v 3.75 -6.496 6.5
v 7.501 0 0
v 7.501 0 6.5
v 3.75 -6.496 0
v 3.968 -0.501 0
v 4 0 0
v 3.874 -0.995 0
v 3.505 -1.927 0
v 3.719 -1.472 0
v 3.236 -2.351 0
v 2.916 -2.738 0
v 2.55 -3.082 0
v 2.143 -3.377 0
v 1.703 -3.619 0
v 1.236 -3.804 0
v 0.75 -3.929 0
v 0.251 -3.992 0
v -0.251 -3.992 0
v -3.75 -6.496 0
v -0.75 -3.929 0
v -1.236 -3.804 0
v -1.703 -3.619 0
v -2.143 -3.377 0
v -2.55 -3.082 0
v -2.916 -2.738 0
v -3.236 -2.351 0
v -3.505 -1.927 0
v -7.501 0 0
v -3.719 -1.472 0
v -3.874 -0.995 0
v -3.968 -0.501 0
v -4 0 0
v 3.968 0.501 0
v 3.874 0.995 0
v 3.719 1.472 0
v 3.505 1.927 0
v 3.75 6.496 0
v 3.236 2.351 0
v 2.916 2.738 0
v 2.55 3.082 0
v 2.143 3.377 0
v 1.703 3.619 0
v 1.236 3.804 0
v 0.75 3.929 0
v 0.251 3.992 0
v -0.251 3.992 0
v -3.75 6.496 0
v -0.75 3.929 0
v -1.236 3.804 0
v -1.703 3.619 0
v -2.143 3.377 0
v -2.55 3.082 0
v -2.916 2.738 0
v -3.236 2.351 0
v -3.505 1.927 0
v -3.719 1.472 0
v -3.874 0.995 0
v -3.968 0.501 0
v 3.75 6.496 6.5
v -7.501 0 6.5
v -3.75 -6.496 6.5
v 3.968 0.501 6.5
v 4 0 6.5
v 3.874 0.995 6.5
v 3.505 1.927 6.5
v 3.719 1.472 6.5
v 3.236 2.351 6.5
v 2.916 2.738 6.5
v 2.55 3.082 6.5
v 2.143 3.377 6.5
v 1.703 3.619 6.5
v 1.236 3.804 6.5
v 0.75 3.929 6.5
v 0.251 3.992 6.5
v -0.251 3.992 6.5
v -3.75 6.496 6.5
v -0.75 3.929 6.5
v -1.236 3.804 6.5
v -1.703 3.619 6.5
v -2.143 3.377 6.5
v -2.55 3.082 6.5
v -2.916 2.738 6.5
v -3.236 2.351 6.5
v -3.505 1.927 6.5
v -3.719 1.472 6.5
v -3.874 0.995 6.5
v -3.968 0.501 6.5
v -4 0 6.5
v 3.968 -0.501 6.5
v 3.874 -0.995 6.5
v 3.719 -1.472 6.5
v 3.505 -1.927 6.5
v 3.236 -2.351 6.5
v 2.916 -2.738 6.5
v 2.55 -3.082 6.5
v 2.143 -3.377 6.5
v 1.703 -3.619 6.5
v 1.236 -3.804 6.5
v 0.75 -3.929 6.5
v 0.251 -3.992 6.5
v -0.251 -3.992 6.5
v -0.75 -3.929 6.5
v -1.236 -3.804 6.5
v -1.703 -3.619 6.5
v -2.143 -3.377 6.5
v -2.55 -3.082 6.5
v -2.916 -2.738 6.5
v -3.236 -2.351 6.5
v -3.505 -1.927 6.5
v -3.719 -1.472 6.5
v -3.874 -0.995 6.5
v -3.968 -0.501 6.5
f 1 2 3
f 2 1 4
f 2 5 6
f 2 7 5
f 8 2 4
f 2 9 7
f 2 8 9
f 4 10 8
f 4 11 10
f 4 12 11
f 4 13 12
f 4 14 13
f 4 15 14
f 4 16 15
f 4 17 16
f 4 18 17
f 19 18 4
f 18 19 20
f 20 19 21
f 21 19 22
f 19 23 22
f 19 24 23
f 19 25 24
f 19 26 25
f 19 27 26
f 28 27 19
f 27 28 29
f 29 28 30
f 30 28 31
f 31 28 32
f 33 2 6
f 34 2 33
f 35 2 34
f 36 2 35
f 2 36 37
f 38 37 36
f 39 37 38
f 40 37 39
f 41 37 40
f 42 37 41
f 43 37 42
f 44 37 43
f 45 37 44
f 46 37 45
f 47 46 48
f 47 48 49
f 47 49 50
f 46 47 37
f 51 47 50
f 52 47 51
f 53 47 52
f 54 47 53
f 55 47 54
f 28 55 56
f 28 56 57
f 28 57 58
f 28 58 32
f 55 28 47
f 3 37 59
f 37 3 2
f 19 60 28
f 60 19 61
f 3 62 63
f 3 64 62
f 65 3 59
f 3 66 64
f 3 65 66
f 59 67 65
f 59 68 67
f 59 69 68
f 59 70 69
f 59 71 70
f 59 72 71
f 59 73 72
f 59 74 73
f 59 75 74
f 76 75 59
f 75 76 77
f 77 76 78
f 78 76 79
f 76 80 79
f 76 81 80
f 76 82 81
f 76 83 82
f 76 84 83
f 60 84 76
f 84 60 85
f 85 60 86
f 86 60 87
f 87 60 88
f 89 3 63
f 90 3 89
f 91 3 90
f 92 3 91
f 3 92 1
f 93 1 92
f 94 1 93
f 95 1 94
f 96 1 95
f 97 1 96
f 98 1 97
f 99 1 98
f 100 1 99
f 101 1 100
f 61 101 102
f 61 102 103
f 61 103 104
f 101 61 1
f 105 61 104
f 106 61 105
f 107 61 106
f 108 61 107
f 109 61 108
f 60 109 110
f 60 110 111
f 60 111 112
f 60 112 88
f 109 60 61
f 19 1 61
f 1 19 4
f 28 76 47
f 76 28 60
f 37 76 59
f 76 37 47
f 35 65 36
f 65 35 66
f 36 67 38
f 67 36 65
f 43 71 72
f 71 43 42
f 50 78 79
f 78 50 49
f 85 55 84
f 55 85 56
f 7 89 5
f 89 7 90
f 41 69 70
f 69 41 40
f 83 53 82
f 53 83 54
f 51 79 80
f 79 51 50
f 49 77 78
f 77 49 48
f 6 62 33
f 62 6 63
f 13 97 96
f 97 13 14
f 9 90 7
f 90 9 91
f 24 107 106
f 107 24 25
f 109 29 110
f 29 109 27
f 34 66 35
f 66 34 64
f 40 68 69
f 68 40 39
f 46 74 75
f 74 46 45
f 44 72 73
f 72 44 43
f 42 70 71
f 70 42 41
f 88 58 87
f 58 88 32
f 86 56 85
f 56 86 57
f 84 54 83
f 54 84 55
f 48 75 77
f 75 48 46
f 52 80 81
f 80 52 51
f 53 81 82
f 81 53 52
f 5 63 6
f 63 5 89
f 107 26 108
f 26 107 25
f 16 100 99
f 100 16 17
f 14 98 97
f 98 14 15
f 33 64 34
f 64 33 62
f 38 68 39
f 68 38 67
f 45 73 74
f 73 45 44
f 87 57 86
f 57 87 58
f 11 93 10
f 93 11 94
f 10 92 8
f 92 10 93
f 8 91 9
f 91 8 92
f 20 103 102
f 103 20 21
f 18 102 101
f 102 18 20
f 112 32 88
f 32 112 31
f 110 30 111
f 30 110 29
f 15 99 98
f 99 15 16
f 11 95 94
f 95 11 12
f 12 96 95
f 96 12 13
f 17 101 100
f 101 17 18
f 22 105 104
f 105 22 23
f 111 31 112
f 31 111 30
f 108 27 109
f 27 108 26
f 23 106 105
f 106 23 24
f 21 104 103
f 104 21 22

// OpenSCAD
$fn = 50;


difference() {
	union() {
		translate(v = [0, 0, 0]) {
			rotate(a = [0, 0, 0]) {
				translate(v = [0, 0, 0]) {
					rotate(a = [0, 0, 0]) {
						linear_extrude(height = 6.5000000000) {
							polygon(points = [[7.5010000000, 0.0000000000], [3.7505000000, 6.4960565538], [-3.7505000000, 6.4960565538], [-7.5010000000, 0.0000000000], [-3.7505000000, -6.4960565538], [3.7505000000, -6.4960565538]]);
						}
					}
				}
			}
		}
	}
	union() {
		translate(v = [0, 0, -10]) {
			rotate(a = [0, 0, 0]) {
				cylinder(h = 100, r = 4.0000000000);
			}
		}
	}
}
